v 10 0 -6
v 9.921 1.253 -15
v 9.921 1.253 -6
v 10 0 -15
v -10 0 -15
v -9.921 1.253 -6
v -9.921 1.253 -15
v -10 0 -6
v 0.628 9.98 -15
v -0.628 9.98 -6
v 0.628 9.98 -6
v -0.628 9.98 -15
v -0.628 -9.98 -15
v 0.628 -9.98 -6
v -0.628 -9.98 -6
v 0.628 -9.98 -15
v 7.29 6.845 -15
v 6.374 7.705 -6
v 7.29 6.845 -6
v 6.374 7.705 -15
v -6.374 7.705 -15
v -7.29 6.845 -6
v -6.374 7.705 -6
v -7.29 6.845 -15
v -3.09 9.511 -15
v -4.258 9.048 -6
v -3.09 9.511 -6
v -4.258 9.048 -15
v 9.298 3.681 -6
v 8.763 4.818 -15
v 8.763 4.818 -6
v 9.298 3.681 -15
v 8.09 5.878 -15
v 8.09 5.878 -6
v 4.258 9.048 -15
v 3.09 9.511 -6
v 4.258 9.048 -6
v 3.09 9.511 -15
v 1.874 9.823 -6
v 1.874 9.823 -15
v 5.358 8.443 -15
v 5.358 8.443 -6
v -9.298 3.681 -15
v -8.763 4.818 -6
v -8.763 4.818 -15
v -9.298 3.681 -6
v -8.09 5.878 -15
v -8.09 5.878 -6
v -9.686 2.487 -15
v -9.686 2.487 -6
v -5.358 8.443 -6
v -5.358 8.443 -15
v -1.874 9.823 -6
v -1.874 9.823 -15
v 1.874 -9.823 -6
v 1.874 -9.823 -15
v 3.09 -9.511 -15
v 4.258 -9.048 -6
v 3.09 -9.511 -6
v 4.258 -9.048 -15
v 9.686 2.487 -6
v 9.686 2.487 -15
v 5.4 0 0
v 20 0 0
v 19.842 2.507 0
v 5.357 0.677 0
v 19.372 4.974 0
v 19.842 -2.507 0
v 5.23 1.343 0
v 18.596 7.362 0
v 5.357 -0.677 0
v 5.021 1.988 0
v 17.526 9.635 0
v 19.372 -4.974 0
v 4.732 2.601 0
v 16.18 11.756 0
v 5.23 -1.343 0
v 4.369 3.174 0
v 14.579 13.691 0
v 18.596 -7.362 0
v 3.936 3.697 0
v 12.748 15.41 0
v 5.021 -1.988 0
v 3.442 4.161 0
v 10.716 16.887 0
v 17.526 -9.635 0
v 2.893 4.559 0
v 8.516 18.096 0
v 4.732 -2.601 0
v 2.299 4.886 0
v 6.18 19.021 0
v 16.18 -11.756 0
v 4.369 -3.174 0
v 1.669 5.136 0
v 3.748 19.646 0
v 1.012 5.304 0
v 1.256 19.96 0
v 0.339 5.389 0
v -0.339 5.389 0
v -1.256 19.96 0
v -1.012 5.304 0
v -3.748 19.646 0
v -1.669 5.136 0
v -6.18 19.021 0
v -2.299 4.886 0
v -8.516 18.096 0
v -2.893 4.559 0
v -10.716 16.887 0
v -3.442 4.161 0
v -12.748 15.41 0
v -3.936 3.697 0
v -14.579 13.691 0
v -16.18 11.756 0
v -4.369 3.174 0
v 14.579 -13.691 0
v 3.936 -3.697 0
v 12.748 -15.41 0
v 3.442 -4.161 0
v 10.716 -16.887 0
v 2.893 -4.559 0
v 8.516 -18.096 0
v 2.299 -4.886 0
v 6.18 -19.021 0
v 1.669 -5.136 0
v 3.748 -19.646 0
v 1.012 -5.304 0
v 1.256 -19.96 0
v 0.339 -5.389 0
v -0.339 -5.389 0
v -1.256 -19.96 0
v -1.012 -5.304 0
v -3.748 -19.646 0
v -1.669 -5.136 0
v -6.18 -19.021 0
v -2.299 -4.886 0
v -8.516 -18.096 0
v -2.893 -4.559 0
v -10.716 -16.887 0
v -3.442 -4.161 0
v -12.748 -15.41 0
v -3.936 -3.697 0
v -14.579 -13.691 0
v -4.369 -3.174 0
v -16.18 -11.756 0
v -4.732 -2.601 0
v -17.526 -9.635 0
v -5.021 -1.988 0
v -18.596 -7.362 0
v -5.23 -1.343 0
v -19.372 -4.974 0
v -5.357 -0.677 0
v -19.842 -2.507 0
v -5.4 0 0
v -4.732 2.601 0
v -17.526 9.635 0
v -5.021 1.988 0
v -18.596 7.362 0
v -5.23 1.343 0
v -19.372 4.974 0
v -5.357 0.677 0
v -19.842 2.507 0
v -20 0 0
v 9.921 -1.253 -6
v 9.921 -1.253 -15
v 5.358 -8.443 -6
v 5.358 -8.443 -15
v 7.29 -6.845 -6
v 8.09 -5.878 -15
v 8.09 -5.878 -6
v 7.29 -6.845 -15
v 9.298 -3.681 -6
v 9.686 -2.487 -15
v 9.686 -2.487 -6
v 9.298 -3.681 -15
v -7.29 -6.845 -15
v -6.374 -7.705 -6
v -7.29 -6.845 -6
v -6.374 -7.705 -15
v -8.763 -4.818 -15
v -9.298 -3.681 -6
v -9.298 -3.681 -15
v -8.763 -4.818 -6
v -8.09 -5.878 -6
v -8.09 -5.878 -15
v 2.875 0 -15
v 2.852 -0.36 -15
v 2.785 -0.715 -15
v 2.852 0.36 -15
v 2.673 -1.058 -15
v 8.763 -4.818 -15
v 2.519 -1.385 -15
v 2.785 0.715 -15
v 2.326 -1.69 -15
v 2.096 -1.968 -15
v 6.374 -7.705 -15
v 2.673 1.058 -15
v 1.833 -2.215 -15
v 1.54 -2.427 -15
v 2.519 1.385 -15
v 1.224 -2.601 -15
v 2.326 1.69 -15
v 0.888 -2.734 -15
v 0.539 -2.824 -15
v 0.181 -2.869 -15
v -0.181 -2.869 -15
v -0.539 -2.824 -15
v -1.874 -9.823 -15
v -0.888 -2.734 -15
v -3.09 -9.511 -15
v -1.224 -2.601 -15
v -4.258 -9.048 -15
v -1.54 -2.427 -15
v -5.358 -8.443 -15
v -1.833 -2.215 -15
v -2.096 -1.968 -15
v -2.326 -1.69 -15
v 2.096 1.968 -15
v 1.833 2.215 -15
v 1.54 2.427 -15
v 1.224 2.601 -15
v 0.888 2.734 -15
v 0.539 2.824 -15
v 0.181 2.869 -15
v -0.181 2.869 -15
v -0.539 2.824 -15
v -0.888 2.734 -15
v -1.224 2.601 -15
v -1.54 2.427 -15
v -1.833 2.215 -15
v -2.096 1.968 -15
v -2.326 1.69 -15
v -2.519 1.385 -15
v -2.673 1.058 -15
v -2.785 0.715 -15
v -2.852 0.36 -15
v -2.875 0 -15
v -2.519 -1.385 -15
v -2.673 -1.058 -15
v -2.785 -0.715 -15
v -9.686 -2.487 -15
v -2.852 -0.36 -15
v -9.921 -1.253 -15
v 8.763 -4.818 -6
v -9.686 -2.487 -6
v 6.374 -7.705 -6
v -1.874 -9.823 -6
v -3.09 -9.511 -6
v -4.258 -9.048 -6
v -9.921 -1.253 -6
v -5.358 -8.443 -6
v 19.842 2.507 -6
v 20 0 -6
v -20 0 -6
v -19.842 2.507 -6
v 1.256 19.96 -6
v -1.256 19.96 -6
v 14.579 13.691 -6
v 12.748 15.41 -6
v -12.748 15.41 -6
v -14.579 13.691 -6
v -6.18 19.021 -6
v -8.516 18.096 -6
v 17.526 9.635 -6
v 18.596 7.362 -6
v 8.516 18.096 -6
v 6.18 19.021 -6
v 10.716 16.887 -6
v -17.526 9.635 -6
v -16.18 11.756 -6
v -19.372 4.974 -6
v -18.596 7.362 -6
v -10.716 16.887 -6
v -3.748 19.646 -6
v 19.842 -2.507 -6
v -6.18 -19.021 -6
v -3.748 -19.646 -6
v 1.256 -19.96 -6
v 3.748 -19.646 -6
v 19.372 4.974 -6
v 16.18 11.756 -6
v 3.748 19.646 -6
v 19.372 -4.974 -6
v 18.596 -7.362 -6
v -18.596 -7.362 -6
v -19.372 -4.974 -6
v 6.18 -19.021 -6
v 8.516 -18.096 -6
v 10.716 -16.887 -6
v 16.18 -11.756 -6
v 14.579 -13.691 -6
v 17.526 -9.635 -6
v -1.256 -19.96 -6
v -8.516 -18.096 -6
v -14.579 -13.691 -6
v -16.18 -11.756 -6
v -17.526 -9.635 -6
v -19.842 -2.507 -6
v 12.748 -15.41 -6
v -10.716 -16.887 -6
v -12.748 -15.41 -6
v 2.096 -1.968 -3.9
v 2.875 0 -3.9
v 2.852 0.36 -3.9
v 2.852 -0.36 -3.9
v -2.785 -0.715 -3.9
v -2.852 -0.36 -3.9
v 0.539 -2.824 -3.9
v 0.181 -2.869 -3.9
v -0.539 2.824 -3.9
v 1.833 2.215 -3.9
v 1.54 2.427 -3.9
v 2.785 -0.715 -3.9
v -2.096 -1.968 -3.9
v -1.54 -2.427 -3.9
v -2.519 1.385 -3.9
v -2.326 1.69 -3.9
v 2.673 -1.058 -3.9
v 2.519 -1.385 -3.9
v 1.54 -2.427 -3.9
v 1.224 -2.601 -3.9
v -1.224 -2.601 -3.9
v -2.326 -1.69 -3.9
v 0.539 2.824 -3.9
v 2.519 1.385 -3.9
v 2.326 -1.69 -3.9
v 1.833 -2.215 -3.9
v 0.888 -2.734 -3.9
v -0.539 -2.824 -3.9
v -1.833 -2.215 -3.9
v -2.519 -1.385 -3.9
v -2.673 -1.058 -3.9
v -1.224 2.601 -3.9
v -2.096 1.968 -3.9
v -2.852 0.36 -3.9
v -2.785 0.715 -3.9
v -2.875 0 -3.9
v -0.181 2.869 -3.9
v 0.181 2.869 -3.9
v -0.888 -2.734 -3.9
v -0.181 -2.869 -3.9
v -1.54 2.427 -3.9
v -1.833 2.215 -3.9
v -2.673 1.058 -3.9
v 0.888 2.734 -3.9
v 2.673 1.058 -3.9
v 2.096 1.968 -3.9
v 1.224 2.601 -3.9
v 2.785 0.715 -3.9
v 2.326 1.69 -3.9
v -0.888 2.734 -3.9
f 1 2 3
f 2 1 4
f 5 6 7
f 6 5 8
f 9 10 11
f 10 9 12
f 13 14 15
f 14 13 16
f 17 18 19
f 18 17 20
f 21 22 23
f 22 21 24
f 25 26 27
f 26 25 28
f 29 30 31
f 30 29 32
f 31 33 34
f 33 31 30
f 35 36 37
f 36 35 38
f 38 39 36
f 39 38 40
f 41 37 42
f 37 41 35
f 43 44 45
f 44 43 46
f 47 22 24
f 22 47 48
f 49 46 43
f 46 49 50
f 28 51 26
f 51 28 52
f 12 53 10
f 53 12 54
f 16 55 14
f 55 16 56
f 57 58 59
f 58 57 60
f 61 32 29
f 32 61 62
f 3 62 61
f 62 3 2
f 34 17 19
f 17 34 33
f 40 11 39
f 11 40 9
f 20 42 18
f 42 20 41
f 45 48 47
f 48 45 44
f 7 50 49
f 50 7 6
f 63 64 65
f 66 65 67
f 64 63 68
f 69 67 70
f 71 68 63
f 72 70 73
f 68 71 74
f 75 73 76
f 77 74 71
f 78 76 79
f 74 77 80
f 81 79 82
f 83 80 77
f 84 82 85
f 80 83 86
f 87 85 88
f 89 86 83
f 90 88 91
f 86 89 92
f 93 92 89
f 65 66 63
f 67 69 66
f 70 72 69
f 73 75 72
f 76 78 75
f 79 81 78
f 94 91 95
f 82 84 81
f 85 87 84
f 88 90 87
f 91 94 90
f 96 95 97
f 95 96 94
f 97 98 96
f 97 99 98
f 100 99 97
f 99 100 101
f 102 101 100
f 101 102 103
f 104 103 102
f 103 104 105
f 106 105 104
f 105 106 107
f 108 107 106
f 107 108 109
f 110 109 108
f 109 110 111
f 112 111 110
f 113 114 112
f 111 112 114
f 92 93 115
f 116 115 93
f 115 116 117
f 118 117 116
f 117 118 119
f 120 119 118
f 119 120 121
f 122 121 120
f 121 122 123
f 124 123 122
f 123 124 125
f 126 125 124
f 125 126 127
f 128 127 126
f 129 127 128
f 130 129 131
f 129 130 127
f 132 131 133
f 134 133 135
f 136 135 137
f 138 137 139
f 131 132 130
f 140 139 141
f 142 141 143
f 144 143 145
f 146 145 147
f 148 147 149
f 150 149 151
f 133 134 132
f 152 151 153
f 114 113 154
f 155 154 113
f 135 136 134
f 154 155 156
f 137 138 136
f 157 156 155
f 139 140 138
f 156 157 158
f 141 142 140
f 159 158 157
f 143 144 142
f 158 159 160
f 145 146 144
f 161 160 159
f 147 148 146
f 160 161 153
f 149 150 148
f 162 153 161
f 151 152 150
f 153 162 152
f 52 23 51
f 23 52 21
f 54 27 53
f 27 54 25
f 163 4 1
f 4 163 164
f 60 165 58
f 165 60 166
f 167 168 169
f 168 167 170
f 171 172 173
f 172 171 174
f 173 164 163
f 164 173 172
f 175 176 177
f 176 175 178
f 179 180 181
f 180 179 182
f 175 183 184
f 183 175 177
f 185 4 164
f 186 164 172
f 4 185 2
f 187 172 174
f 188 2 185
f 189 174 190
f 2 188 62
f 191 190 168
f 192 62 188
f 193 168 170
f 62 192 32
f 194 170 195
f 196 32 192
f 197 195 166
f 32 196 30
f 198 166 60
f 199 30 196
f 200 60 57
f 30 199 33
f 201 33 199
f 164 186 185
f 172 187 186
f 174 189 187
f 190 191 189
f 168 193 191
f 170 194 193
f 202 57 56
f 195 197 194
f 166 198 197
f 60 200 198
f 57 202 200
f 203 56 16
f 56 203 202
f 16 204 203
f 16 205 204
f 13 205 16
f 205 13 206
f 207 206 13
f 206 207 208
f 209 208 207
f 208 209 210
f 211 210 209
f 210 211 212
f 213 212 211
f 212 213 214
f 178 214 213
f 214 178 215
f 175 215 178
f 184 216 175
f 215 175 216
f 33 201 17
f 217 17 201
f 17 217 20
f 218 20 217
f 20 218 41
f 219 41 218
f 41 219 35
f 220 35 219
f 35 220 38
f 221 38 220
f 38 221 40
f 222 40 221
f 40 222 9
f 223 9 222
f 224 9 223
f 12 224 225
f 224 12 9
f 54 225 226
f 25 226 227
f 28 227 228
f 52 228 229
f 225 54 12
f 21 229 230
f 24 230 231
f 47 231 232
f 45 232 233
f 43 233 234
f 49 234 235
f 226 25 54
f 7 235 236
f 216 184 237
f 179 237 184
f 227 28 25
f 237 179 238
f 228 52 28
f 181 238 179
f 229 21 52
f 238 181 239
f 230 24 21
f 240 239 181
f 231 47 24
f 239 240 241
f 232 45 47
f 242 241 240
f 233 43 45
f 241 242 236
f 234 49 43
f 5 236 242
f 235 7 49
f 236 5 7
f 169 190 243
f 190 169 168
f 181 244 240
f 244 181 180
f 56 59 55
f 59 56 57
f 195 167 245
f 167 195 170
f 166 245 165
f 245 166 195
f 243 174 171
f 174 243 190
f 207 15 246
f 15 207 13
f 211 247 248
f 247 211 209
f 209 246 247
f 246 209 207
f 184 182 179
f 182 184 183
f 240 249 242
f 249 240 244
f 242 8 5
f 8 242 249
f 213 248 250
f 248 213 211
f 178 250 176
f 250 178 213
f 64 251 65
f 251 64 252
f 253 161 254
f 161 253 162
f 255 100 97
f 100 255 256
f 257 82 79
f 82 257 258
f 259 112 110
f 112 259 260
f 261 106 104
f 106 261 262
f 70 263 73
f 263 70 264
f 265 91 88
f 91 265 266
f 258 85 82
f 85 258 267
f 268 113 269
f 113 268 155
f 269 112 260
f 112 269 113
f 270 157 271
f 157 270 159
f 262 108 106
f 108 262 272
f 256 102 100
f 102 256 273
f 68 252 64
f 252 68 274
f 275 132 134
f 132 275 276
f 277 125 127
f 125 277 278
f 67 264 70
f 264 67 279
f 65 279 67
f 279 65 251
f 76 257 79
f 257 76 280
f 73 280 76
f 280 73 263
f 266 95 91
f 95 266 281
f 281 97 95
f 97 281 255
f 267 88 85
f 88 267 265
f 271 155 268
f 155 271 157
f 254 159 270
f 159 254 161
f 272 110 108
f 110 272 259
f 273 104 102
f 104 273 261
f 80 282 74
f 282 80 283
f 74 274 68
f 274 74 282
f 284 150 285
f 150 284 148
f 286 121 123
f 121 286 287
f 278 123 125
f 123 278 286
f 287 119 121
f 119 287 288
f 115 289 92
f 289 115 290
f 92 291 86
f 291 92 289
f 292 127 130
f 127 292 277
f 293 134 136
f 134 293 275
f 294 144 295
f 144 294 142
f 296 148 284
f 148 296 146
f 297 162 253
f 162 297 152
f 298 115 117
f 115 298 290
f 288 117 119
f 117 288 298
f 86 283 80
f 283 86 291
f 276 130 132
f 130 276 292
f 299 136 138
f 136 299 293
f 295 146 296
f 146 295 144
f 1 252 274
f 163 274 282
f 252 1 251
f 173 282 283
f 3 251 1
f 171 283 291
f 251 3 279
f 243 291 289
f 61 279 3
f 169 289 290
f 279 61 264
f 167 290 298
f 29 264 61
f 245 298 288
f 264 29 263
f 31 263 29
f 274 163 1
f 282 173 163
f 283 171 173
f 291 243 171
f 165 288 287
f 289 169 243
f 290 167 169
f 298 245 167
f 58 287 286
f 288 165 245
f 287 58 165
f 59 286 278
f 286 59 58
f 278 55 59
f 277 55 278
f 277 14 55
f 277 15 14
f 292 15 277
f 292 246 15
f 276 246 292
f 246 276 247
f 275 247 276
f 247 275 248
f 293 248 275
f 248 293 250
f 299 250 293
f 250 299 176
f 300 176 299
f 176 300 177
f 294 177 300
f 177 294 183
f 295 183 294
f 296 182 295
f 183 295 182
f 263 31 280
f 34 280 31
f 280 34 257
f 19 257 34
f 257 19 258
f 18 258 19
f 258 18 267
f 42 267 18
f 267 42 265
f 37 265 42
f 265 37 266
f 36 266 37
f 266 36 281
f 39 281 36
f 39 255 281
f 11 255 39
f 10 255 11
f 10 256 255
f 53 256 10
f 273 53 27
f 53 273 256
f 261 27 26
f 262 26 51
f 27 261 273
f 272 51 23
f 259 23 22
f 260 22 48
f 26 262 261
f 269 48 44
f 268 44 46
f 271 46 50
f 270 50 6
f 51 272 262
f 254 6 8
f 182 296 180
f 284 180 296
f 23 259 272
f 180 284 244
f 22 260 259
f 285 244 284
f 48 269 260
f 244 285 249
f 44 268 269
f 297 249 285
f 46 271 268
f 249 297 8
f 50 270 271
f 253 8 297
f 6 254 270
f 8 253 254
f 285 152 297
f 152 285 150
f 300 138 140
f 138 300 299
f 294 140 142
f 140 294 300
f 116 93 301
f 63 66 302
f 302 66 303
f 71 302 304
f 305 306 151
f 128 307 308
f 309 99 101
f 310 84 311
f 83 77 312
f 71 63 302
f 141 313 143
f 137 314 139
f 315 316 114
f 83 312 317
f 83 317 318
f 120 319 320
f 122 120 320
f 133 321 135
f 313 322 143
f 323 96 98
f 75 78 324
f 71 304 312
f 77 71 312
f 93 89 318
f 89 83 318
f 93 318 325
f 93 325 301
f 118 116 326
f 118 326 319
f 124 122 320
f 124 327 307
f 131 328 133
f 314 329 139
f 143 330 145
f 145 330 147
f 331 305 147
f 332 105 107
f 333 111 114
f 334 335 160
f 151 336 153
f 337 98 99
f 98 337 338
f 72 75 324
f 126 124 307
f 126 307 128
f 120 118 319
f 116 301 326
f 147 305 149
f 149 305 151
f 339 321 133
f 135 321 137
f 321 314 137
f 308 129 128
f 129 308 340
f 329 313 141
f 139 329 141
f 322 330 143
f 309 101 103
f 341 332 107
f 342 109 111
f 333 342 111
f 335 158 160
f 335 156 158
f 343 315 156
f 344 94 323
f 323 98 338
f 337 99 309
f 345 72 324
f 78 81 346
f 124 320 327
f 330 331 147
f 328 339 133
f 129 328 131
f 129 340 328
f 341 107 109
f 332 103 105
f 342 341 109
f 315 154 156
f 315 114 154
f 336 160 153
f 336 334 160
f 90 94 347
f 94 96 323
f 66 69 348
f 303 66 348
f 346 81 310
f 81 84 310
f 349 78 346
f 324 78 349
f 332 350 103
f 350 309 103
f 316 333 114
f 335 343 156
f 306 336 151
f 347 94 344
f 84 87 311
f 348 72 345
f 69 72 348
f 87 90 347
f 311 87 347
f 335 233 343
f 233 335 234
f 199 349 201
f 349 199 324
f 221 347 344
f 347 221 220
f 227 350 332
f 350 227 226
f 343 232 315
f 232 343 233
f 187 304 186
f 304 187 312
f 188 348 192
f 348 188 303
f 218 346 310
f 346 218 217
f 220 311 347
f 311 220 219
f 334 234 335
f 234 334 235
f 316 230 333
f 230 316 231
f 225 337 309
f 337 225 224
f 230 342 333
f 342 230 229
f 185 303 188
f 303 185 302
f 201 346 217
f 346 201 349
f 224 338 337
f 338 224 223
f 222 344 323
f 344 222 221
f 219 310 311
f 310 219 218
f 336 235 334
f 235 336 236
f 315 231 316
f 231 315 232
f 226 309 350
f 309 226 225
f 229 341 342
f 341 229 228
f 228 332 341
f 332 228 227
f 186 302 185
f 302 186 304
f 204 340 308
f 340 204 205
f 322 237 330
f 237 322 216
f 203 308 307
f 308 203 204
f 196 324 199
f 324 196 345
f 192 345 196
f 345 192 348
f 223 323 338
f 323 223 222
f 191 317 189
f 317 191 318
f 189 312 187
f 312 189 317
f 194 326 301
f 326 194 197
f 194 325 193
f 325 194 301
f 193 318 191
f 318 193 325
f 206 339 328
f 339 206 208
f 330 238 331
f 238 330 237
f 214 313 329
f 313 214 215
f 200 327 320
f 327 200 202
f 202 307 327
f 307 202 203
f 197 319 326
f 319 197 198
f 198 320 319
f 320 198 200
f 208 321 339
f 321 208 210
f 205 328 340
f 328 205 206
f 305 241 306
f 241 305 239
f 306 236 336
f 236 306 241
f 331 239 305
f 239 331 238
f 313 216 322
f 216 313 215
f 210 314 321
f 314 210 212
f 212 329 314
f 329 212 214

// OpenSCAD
$fn = 50;


difference() {
	union() {
		translate(v = [0, 0, -15.0000000000]) {
			cylinder(h = 15, r = 10.0000000000);
		}
		translate(v = [0, 0, -6.0000000000]) {
			cylinder(h = 6, r = 20.0000000000);
		}
	}
	union() {
		translate(v = [0, 0, 0]) {
			rotate(a = [0, 0, 0]) {
				difference() {
					union() {
						#translate(v = [0, 0, -15.0000000000]) {
							cylinder(h = 15, r = 2.6000000000);
						}
						#translate(v = [0, 0, -3.9000000000]) {
							cylinder(h = 3.9000000000, r = 10.0000000000, r1 = 2.8750000000, r2 = 5.4000000000);
						}
						#translate(v = [0, 0, -15.0000000000]) {
							cylinder(h = 15, r = 2.8750000000);
						}
						#translate(v = [0, 0, -15.0000000000]) {
							cylinder(h = 15, r = 2.6000000000);
						}
					}
					union();
				}
			}
		}
	}
}
